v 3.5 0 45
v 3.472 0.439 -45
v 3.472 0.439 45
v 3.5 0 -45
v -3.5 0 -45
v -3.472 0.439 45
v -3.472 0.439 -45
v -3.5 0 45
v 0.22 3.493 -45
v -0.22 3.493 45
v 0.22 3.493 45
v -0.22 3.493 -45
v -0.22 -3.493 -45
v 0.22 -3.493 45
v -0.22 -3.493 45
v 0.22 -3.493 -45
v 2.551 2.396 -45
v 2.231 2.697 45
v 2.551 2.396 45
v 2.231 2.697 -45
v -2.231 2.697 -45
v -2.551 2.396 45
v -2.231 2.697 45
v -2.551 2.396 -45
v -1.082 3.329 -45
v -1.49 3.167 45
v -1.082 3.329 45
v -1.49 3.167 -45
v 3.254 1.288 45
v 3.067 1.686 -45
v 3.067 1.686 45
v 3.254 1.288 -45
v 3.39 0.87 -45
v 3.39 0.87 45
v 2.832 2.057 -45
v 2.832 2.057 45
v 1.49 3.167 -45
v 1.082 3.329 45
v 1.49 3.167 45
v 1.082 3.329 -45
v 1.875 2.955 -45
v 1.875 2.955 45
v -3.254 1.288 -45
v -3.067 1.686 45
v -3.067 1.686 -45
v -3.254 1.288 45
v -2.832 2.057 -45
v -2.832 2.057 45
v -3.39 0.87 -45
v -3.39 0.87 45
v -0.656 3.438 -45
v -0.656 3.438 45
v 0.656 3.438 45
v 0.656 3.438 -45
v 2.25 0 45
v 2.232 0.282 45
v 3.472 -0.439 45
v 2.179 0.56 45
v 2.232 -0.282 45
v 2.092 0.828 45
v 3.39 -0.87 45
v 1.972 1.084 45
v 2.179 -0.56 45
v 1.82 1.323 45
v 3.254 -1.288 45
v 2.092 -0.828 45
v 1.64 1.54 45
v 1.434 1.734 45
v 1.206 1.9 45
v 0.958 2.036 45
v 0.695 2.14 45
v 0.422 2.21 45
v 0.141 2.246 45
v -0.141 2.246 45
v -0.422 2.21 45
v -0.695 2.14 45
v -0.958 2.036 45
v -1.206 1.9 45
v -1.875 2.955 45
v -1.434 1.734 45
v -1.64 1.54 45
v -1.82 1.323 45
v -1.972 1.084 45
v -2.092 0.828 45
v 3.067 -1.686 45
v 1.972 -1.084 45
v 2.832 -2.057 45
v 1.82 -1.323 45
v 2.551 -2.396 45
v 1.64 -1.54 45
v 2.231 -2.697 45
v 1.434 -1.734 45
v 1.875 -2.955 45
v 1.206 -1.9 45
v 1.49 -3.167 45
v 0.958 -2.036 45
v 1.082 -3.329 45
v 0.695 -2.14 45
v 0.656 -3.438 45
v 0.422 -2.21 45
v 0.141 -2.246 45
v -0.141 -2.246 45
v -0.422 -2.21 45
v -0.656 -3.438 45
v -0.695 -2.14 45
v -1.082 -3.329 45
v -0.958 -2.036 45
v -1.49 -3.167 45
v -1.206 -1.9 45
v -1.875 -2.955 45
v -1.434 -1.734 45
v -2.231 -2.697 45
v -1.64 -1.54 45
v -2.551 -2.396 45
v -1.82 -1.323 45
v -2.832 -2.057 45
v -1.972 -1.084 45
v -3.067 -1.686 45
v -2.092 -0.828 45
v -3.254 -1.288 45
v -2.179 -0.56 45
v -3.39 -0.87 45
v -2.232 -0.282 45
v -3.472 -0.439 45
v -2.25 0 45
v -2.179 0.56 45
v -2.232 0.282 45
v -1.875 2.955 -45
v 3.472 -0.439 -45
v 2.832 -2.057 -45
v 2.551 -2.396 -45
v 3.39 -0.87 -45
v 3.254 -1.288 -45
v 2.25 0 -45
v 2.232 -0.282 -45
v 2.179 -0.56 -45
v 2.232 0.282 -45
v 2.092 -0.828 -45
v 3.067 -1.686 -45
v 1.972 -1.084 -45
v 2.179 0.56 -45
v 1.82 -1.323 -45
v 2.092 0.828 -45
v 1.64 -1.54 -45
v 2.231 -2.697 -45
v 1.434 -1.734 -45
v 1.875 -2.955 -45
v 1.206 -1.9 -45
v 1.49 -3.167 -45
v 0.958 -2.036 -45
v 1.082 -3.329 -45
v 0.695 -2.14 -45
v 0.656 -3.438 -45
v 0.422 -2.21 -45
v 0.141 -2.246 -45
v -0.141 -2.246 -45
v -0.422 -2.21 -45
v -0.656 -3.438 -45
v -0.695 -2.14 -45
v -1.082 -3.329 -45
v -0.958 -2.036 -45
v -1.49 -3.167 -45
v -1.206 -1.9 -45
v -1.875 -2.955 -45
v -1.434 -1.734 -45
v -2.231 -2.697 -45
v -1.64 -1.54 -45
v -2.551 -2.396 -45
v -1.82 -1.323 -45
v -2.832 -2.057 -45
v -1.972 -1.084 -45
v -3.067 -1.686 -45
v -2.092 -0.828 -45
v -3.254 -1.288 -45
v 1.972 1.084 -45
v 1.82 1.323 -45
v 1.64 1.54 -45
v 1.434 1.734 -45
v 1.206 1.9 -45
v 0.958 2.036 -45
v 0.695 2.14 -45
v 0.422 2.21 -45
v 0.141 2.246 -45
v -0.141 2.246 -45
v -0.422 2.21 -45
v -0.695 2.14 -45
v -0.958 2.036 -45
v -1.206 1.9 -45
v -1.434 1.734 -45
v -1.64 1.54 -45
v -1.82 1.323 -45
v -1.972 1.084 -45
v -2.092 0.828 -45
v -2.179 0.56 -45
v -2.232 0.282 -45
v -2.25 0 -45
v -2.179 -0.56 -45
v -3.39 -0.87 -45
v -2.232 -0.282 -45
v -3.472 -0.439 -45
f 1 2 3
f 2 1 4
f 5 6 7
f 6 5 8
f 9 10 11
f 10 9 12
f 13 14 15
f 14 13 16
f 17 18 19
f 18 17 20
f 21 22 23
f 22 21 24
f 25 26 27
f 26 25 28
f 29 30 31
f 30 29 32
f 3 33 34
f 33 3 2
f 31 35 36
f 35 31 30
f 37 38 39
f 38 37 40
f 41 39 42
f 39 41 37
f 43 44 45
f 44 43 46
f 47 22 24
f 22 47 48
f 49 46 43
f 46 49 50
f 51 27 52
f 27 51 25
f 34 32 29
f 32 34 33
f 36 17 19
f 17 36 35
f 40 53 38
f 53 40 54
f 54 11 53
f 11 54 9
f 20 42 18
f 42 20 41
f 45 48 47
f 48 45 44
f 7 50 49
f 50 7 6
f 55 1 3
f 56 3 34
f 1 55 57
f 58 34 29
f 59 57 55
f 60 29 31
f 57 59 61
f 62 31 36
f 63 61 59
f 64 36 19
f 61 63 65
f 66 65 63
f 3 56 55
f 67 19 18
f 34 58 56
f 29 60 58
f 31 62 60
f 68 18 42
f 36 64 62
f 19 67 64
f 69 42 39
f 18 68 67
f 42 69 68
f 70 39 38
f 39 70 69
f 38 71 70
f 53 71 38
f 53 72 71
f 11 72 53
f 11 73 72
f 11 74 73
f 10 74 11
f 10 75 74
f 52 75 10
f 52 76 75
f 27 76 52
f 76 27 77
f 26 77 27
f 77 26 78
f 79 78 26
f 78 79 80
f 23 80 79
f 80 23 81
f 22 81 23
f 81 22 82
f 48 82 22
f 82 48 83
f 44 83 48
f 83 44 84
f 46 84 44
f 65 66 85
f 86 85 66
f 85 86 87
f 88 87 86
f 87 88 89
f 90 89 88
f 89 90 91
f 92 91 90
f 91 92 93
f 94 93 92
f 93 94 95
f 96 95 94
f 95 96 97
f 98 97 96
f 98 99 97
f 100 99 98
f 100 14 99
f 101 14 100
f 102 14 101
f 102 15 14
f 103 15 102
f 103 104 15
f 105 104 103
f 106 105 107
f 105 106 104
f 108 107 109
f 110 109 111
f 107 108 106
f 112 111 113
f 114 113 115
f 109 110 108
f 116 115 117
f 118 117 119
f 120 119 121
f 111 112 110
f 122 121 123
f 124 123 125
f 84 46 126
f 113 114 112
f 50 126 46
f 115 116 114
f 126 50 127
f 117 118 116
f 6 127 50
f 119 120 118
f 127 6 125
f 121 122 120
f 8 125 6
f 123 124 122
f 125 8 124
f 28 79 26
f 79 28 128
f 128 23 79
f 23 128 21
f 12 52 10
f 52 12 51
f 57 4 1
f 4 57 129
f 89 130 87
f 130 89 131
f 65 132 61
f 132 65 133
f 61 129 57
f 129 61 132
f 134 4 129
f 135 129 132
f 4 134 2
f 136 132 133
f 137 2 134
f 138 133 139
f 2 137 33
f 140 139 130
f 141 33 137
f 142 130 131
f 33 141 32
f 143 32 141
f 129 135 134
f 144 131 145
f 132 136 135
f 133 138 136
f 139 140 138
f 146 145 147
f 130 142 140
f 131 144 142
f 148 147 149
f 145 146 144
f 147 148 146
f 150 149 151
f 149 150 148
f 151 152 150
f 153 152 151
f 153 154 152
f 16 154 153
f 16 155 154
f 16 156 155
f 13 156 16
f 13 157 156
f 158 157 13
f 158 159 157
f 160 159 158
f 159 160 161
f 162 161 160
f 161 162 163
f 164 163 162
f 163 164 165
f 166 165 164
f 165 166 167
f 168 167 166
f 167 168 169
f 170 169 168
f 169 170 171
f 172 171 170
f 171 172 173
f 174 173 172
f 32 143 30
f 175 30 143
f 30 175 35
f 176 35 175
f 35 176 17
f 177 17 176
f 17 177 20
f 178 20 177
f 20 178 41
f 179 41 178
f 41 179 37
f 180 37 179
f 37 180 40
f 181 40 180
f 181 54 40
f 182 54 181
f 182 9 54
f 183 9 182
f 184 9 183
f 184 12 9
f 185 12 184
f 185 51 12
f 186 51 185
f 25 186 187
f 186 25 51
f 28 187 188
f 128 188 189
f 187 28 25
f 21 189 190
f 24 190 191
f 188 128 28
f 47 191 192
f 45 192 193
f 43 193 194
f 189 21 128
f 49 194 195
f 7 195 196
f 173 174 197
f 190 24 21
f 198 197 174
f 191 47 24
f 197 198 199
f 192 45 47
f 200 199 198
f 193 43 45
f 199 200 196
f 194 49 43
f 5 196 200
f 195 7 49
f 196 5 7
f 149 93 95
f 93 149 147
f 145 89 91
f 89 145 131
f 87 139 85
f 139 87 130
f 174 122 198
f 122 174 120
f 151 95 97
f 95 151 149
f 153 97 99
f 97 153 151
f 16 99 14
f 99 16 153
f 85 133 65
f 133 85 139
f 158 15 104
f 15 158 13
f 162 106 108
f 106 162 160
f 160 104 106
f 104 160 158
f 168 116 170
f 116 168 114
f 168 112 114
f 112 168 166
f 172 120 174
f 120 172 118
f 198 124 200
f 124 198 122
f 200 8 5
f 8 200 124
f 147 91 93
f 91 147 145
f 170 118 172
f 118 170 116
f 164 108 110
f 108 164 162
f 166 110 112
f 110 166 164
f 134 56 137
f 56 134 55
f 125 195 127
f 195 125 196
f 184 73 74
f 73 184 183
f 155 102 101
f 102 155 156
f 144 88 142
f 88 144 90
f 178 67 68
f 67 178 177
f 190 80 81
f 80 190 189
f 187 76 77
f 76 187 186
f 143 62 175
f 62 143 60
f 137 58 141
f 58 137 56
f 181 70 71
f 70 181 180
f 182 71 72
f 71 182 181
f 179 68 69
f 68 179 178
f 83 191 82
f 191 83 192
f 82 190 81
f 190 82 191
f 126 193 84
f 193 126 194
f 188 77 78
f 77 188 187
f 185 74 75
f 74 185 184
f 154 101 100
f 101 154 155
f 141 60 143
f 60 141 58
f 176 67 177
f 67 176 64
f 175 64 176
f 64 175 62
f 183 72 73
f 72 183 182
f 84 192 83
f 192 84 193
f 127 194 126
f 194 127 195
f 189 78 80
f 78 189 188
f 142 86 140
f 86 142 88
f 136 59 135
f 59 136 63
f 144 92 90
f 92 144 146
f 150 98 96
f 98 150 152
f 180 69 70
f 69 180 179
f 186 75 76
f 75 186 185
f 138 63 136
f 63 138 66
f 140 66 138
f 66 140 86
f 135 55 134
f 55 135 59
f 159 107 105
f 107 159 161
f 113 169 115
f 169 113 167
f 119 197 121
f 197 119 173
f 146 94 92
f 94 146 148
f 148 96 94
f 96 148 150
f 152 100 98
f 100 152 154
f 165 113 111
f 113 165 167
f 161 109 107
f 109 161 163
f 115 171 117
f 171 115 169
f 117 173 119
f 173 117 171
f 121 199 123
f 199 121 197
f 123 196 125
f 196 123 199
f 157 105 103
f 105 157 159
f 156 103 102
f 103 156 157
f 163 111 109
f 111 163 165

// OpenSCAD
$fn = 50;


difference() {
	union() {
		translate(v = [0, 0, -45.0000000000]) {
			cylinder(h = 90, r = 3.5000000000);
		}
	}
	union() {
		translate(v = [0, 0, -100.0000000000]) {
			cylinder(h = 200, r = 2.2500000000);
		}
	}
}
